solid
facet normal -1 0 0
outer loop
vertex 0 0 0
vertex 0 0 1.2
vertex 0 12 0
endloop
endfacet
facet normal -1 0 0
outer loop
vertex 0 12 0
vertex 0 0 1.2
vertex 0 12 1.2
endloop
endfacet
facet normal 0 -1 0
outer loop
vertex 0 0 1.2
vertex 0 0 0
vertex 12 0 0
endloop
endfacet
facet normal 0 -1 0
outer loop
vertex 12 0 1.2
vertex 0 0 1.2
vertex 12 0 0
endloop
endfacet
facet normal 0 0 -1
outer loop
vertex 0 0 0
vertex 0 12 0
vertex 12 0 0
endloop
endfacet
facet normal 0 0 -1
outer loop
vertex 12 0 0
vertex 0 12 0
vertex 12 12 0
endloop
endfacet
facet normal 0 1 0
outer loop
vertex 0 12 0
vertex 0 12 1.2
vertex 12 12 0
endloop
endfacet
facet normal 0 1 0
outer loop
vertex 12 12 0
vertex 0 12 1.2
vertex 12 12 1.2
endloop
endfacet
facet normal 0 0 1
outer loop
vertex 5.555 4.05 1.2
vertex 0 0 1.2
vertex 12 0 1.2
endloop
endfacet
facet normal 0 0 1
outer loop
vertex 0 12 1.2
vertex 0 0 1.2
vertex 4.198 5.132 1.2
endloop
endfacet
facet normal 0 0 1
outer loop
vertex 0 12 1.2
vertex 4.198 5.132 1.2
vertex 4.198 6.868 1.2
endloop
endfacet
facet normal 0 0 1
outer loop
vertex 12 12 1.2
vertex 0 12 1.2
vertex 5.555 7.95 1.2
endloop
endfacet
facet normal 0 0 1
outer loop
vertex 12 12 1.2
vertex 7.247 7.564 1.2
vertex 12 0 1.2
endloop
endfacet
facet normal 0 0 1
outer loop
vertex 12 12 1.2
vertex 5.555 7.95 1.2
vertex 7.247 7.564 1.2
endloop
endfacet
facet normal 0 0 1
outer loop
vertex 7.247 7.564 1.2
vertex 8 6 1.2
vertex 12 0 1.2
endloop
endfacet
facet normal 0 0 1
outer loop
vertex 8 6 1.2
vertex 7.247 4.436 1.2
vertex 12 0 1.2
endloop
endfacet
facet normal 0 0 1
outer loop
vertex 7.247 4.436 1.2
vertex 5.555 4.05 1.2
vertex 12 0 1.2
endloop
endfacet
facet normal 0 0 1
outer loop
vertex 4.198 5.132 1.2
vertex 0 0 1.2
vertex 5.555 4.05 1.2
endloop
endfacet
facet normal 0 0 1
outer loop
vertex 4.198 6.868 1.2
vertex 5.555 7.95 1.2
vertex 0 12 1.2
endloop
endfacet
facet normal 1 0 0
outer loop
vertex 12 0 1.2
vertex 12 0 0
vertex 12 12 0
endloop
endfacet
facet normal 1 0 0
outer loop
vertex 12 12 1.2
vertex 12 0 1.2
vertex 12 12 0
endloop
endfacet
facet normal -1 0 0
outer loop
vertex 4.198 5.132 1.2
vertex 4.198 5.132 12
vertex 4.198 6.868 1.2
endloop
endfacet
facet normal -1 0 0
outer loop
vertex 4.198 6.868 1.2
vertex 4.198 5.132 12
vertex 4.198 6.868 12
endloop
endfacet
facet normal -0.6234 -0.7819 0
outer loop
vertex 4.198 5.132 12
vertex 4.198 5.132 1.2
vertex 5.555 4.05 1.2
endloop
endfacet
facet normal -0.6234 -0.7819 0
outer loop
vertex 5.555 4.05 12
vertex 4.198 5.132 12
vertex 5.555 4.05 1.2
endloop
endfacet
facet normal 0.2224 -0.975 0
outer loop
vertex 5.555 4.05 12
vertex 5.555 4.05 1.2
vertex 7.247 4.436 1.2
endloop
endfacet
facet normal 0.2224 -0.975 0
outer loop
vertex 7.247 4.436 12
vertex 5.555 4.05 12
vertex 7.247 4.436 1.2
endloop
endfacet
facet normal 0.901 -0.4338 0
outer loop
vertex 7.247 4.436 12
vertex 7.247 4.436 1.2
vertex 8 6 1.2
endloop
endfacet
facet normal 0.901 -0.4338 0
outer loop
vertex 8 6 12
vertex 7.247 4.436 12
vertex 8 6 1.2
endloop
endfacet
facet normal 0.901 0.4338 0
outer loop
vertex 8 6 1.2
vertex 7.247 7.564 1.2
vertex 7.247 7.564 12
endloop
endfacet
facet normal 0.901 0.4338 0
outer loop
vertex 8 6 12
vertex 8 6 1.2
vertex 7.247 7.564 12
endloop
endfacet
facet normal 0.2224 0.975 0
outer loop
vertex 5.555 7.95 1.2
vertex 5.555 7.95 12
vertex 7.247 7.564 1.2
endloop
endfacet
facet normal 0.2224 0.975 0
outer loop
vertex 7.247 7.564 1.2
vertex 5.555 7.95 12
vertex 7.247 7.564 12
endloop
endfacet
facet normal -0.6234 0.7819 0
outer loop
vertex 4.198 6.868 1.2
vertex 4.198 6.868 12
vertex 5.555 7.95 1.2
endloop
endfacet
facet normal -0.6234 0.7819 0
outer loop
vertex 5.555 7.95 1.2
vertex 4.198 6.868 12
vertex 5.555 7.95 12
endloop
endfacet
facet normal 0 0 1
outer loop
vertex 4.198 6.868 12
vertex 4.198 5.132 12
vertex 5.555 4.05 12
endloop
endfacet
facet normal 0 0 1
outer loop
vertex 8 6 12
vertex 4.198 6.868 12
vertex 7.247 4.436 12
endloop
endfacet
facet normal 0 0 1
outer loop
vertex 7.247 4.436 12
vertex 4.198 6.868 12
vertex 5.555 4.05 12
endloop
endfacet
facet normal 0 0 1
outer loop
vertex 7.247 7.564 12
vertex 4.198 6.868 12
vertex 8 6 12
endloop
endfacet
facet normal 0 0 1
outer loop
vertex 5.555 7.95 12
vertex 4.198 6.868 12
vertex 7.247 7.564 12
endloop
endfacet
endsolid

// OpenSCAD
cube([12, 12, 1.2]);
translate([6, 6, 0]) cylinder(12, r=2);
